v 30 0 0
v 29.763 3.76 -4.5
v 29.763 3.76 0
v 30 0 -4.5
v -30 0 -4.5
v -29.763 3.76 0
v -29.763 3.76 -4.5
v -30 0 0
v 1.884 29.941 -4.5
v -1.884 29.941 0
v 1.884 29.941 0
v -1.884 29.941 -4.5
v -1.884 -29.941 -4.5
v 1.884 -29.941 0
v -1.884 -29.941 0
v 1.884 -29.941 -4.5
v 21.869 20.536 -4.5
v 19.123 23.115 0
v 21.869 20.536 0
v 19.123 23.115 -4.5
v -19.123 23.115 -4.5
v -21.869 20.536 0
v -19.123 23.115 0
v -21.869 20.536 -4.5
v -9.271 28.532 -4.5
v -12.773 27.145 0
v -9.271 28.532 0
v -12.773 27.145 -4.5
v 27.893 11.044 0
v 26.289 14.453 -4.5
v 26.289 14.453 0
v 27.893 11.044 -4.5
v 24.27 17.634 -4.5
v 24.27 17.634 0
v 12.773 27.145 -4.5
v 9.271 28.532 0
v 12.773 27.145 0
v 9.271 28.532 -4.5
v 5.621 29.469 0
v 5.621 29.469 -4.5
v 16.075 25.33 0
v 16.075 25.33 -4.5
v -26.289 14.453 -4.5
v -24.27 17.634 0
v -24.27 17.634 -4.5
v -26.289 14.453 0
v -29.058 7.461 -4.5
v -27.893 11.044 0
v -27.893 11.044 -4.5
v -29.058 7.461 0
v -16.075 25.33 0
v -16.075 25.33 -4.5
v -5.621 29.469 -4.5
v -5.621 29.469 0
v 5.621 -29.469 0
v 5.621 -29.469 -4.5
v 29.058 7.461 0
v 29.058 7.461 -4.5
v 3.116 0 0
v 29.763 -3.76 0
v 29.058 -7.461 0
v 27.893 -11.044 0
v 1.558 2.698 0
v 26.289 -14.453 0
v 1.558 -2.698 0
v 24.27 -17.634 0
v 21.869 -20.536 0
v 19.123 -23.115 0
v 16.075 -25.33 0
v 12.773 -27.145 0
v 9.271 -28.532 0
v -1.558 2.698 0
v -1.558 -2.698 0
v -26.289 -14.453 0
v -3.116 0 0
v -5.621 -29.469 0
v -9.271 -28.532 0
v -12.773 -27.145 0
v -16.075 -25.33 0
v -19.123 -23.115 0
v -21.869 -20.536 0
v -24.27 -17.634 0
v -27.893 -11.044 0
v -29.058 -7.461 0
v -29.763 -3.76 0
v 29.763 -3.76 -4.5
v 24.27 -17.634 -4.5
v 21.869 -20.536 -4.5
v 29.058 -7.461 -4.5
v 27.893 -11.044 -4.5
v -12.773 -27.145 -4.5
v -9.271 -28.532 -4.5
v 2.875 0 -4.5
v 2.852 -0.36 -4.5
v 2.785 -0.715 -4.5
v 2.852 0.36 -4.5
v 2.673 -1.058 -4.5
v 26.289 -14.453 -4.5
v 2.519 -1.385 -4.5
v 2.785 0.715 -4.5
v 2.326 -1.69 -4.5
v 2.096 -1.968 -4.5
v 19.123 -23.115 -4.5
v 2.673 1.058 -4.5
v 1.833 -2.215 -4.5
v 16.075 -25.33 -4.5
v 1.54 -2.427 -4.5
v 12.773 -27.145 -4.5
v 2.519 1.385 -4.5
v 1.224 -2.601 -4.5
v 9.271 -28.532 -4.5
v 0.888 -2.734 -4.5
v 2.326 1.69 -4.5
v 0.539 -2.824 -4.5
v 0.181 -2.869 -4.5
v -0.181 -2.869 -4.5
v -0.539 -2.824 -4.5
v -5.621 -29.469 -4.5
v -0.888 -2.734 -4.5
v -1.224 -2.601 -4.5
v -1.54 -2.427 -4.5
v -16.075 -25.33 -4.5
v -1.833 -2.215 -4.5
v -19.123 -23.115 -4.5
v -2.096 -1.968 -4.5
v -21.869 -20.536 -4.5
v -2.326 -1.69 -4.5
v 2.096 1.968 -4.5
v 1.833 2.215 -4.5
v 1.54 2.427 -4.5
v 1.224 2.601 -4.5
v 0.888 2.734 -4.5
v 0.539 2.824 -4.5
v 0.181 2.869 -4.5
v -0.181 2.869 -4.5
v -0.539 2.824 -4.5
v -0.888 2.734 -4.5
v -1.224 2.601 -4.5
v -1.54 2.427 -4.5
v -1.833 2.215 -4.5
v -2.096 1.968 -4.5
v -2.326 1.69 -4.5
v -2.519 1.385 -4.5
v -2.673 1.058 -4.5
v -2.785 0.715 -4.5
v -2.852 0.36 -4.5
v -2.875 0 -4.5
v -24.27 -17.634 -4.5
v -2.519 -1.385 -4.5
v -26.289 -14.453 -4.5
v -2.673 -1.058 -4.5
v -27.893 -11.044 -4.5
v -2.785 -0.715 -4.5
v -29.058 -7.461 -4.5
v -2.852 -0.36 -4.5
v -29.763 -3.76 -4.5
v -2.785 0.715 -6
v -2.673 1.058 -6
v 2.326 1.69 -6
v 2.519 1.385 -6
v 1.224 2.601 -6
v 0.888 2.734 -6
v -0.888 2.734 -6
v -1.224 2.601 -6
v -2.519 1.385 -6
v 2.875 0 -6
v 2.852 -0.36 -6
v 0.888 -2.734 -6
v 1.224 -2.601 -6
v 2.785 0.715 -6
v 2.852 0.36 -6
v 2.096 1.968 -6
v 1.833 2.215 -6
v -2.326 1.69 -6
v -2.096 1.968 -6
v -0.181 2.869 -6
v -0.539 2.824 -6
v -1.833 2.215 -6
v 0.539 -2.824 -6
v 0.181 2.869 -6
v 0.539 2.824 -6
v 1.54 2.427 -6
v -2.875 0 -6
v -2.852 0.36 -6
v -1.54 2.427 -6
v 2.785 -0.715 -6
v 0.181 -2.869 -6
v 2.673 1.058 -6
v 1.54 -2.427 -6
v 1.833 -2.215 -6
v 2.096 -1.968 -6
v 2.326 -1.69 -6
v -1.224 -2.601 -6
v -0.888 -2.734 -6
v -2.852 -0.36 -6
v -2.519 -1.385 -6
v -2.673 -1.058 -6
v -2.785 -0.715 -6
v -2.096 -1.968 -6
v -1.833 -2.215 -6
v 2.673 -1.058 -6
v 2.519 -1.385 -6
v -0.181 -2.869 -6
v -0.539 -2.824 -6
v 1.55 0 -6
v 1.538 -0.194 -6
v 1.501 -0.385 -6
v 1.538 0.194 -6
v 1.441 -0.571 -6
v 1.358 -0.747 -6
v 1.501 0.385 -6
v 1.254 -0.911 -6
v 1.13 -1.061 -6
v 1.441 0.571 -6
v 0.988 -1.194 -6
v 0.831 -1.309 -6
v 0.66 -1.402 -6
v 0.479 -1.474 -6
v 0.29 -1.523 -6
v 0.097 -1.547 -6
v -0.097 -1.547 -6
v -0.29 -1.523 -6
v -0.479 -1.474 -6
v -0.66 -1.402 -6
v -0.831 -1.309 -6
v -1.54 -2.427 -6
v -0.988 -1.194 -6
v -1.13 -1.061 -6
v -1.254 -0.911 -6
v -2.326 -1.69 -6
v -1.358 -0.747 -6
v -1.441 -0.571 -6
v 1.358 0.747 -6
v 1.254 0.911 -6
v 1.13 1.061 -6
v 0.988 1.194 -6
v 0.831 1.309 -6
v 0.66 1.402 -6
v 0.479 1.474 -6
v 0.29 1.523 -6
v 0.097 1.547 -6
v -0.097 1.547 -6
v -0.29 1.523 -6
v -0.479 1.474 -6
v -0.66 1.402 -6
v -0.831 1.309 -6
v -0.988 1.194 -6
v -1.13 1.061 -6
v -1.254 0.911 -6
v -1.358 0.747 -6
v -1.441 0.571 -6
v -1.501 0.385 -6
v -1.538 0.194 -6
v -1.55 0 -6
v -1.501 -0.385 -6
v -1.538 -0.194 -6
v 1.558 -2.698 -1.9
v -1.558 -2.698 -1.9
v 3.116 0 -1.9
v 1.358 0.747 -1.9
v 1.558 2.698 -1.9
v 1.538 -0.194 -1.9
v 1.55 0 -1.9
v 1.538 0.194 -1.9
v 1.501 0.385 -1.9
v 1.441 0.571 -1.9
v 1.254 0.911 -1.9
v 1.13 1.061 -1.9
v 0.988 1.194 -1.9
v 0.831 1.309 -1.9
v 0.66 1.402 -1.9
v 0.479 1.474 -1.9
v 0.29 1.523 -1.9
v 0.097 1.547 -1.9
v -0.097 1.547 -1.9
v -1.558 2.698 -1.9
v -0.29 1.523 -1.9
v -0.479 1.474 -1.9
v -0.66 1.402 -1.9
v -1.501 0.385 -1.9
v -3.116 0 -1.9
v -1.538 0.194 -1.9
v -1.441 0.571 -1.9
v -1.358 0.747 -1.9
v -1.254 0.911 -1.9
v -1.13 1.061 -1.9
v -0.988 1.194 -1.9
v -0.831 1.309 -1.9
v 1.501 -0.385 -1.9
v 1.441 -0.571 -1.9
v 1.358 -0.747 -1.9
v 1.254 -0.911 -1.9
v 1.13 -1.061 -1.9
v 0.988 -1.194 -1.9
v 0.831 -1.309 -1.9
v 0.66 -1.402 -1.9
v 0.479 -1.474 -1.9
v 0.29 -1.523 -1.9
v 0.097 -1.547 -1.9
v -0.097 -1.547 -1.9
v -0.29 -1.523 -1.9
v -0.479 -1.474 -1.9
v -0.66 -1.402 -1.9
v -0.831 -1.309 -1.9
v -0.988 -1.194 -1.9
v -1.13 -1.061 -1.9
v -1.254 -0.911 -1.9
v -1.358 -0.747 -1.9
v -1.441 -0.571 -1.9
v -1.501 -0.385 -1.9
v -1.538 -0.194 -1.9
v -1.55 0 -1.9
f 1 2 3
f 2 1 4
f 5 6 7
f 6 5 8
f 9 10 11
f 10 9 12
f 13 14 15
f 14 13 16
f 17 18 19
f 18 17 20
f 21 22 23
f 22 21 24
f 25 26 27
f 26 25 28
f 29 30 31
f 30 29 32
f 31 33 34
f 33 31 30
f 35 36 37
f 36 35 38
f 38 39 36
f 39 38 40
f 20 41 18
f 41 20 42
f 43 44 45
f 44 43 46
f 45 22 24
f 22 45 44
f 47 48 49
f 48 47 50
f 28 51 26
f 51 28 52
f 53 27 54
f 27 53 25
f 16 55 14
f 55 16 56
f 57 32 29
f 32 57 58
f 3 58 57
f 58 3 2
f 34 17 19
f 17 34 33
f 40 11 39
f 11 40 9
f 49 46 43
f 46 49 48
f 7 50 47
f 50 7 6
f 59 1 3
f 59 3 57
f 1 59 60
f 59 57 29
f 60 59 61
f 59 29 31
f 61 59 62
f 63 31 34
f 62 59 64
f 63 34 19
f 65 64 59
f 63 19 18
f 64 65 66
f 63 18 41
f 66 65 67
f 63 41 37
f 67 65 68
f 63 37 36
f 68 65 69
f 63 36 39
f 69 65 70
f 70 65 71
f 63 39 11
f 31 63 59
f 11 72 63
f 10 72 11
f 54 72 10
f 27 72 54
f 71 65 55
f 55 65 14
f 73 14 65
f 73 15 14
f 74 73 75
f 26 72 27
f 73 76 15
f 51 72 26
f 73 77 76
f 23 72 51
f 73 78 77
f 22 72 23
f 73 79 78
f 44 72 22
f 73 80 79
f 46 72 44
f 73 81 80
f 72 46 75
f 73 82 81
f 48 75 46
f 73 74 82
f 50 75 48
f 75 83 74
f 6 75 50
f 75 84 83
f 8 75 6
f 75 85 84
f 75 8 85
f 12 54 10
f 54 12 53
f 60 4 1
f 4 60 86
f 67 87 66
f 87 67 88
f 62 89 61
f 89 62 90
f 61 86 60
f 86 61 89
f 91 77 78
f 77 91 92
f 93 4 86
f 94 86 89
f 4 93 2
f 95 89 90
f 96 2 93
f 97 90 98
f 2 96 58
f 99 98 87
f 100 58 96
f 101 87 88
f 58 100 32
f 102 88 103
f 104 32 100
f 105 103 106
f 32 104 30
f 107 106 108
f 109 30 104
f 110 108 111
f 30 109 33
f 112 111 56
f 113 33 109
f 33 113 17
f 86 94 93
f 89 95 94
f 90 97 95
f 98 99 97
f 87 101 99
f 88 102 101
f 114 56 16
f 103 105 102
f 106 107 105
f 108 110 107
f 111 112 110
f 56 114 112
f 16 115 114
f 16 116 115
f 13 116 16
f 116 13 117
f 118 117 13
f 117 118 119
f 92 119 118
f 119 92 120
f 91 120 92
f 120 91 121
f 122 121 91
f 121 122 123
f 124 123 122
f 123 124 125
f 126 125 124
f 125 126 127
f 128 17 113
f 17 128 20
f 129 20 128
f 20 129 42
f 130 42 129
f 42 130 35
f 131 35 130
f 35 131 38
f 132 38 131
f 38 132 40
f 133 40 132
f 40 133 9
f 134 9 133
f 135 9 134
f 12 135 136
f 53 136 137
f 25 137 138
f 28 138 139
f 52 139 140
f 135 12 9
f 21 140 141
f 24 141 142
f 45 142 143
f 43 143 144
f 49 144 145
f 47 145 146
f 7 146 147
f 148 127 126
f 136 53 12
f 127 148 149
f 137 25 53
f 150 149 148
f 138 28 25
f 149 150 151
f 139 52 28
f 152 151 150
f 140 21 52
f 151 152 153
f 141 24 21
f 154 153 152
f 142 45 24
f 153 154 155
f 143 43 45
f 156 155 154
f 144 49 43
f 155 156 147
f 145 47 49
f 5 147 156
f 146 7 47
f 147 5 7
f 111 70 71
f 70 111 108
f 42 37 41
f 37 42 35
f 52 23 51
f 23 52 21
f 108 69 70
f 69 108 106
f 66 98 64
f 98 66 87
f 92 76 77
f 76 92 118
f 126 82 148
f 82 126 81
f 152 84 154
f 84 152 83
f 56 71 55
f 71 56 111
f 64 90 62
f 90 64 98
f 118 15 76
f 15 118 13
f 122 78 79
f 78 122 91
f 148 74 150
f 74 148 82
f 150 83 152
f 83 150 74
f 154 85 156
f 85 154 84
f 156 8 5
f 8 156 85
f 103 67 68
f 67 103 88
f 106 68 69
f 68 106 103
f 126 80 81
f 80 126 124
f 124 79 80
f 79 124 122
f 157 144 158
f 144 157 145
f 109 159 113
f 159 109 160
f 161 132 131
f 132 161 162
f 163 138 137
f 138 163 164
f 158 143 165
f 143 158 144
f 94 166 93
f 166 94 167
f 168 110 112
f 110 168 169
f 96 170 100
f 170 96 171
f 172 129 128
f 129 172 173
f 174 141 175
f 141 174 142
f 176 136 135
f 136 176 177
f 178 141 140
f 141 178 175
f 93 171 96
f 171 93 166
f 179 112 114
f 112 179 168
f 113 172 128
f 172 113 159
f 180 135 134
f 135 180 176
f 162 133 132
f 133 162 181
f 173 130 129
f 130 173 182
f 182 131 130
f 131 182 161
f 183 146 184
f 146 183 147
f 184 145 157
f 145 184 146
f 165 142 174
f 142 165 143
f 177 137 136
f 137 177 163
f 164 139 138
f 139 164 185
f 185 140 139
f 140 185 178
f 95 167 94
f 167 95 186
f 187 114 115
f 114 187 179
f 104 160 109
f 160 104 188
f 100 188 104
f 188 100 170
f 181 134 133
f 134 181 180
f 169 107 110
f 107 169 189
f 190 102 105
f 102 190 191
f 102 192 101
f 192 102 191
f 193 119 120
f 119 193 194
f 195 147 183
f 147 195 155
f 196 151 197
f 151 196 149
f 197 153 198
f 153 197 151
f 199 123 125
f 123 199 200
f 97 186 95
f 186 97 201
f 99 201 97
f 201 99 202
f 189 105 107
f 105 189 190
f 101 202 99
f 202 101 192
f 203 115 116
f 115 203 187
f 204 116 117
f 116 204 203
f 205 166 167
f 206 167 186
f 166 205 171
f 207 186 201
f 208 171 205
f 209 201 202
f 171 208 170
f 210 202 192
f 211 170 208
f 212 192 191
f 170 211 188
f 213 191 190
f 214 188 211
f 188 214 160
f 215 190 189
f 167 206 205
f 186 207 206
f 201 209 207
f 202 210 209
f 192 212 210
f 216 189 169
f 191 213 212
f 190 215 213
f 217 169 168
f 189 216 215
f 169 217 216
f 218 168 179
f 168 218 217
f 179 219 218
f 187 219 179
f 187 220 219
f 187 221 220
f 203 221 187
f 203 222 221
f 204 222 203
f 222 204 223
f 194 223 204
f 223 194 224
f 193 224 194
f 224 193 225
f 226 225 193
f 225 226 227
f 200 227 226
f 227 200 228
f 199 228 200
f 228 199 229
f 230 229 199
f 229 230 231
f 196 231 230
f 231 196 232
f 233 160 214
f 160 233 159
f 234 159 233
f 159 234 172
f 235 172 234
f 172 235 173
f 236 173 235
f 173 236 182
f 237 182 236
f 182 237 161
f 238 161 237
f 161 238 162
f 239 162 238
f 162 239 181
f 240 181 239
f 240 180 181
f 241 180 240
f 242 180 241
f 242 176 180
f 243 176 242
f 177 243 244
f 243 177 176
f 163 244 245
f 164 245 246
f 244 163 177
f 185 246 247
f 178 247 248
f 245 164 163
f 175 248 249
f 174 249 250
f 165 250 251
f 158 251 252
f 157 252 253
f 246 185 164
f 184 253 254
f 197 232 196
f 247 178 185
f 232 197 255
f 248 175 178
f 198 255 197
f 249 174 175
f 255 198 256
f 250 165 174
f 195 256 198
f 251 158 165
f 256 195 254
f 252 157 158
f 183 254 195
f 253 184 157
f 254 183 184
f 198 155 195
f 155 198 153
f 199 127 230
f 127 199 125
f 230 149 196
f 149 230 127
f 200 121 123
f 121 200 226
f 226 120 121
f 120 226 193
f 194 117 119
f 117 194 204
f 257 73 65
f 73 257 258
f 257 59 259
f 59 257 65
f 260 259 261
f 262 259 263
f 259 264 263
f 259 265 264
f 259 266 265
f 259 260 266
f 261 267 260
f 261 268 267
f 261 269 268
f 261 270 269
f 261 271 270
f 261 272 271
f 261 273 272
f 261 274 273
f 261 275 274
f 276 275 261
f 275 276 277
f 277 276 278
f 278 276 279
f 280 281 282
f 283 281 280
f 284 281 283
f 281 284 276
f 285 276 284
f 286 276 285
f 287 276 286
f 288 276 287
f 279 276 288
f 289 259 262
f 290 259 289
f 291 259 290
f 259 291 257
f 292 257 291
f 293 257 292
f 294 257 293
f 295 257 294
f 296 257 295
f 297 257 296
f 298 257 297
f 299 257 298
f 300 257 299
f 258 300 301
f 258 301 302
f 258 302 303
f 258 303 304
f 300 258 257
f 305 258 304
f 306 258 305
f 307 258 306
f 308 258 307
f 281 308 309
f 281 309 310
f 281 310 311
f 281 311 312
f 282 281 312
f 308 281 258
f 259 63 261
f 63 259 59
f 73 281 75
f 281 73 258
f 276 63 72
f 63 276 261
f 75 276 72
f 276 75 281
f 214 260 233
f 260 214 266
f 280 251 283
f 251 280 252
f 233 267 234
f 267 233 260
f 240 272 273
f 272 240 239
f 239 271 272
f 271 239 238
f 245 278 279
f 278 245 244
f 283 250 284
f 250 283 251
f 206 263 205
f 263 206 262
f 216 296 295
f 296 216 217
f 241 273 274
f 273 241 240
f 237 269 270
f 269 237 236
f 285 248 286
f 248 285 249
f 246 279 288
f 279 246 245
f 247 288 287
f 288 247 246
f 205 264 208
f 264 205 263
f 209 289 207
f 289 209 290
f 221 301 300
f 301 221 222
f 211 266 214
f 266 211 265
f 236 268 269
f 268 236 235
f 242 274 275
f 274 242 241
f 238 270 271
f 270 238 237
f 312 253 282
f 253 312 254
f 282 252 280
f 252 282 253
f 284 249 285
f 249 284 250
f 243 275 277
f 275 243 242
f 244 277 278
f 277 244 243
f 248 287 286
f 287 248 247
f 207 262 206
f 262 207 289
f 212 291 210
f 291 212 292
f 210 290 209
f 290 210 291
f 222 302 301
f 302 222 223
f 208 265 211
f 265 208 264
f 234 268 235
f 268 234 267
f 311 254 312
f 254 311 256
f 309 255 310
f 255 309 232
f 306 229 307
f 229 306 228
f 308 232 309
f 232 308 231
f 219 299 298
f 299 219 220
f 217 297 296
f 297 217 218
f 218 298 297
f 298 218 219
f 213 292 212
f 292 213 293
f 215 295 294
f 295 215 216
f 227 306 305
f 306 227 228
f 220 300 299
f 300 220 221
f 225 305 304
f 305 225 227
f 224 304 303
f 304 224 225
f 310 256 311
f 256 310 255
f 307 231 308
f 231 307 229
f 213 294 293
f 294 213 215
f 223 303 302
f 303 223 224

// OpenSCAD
$fn = 50;


difference() {
	union() {
		translate(v = [0, 0, -4.5000000000]) {
			cylinder(h = 4.5000000000, r = 30.0000000000);
		}
		translate(v = [0, 0, -6.0000000000]) {
			cylinder(h = 6, r = 2.8750000000);
		}
	}
	union() {
		translate(v = [0, 0, 0]) {
			rotate(a = [0, 0, 0]) {
				difference() {
					union() {
						translate(v = [0, 0, -1.9000000000]) {
							linear_extrude(height = 1.9000000000) {
								polygon(points = [[3.1158000000, 0.0000000000], [1.5579000000, 2.6983619531], [-1.5579000000, 2.6983619531], [-3.1158000000, 0.0000000000], [-1.5579000000, -2.6983619531], [1.5579000000, -2.6983619531]]);
							}
						}
					}
					union();
				}
			}
		}
		#translate(v = [0, 0, -100.0000000000]) {
			cylinder(h = 200, r = 1.5500000000);
		}
	}
}
